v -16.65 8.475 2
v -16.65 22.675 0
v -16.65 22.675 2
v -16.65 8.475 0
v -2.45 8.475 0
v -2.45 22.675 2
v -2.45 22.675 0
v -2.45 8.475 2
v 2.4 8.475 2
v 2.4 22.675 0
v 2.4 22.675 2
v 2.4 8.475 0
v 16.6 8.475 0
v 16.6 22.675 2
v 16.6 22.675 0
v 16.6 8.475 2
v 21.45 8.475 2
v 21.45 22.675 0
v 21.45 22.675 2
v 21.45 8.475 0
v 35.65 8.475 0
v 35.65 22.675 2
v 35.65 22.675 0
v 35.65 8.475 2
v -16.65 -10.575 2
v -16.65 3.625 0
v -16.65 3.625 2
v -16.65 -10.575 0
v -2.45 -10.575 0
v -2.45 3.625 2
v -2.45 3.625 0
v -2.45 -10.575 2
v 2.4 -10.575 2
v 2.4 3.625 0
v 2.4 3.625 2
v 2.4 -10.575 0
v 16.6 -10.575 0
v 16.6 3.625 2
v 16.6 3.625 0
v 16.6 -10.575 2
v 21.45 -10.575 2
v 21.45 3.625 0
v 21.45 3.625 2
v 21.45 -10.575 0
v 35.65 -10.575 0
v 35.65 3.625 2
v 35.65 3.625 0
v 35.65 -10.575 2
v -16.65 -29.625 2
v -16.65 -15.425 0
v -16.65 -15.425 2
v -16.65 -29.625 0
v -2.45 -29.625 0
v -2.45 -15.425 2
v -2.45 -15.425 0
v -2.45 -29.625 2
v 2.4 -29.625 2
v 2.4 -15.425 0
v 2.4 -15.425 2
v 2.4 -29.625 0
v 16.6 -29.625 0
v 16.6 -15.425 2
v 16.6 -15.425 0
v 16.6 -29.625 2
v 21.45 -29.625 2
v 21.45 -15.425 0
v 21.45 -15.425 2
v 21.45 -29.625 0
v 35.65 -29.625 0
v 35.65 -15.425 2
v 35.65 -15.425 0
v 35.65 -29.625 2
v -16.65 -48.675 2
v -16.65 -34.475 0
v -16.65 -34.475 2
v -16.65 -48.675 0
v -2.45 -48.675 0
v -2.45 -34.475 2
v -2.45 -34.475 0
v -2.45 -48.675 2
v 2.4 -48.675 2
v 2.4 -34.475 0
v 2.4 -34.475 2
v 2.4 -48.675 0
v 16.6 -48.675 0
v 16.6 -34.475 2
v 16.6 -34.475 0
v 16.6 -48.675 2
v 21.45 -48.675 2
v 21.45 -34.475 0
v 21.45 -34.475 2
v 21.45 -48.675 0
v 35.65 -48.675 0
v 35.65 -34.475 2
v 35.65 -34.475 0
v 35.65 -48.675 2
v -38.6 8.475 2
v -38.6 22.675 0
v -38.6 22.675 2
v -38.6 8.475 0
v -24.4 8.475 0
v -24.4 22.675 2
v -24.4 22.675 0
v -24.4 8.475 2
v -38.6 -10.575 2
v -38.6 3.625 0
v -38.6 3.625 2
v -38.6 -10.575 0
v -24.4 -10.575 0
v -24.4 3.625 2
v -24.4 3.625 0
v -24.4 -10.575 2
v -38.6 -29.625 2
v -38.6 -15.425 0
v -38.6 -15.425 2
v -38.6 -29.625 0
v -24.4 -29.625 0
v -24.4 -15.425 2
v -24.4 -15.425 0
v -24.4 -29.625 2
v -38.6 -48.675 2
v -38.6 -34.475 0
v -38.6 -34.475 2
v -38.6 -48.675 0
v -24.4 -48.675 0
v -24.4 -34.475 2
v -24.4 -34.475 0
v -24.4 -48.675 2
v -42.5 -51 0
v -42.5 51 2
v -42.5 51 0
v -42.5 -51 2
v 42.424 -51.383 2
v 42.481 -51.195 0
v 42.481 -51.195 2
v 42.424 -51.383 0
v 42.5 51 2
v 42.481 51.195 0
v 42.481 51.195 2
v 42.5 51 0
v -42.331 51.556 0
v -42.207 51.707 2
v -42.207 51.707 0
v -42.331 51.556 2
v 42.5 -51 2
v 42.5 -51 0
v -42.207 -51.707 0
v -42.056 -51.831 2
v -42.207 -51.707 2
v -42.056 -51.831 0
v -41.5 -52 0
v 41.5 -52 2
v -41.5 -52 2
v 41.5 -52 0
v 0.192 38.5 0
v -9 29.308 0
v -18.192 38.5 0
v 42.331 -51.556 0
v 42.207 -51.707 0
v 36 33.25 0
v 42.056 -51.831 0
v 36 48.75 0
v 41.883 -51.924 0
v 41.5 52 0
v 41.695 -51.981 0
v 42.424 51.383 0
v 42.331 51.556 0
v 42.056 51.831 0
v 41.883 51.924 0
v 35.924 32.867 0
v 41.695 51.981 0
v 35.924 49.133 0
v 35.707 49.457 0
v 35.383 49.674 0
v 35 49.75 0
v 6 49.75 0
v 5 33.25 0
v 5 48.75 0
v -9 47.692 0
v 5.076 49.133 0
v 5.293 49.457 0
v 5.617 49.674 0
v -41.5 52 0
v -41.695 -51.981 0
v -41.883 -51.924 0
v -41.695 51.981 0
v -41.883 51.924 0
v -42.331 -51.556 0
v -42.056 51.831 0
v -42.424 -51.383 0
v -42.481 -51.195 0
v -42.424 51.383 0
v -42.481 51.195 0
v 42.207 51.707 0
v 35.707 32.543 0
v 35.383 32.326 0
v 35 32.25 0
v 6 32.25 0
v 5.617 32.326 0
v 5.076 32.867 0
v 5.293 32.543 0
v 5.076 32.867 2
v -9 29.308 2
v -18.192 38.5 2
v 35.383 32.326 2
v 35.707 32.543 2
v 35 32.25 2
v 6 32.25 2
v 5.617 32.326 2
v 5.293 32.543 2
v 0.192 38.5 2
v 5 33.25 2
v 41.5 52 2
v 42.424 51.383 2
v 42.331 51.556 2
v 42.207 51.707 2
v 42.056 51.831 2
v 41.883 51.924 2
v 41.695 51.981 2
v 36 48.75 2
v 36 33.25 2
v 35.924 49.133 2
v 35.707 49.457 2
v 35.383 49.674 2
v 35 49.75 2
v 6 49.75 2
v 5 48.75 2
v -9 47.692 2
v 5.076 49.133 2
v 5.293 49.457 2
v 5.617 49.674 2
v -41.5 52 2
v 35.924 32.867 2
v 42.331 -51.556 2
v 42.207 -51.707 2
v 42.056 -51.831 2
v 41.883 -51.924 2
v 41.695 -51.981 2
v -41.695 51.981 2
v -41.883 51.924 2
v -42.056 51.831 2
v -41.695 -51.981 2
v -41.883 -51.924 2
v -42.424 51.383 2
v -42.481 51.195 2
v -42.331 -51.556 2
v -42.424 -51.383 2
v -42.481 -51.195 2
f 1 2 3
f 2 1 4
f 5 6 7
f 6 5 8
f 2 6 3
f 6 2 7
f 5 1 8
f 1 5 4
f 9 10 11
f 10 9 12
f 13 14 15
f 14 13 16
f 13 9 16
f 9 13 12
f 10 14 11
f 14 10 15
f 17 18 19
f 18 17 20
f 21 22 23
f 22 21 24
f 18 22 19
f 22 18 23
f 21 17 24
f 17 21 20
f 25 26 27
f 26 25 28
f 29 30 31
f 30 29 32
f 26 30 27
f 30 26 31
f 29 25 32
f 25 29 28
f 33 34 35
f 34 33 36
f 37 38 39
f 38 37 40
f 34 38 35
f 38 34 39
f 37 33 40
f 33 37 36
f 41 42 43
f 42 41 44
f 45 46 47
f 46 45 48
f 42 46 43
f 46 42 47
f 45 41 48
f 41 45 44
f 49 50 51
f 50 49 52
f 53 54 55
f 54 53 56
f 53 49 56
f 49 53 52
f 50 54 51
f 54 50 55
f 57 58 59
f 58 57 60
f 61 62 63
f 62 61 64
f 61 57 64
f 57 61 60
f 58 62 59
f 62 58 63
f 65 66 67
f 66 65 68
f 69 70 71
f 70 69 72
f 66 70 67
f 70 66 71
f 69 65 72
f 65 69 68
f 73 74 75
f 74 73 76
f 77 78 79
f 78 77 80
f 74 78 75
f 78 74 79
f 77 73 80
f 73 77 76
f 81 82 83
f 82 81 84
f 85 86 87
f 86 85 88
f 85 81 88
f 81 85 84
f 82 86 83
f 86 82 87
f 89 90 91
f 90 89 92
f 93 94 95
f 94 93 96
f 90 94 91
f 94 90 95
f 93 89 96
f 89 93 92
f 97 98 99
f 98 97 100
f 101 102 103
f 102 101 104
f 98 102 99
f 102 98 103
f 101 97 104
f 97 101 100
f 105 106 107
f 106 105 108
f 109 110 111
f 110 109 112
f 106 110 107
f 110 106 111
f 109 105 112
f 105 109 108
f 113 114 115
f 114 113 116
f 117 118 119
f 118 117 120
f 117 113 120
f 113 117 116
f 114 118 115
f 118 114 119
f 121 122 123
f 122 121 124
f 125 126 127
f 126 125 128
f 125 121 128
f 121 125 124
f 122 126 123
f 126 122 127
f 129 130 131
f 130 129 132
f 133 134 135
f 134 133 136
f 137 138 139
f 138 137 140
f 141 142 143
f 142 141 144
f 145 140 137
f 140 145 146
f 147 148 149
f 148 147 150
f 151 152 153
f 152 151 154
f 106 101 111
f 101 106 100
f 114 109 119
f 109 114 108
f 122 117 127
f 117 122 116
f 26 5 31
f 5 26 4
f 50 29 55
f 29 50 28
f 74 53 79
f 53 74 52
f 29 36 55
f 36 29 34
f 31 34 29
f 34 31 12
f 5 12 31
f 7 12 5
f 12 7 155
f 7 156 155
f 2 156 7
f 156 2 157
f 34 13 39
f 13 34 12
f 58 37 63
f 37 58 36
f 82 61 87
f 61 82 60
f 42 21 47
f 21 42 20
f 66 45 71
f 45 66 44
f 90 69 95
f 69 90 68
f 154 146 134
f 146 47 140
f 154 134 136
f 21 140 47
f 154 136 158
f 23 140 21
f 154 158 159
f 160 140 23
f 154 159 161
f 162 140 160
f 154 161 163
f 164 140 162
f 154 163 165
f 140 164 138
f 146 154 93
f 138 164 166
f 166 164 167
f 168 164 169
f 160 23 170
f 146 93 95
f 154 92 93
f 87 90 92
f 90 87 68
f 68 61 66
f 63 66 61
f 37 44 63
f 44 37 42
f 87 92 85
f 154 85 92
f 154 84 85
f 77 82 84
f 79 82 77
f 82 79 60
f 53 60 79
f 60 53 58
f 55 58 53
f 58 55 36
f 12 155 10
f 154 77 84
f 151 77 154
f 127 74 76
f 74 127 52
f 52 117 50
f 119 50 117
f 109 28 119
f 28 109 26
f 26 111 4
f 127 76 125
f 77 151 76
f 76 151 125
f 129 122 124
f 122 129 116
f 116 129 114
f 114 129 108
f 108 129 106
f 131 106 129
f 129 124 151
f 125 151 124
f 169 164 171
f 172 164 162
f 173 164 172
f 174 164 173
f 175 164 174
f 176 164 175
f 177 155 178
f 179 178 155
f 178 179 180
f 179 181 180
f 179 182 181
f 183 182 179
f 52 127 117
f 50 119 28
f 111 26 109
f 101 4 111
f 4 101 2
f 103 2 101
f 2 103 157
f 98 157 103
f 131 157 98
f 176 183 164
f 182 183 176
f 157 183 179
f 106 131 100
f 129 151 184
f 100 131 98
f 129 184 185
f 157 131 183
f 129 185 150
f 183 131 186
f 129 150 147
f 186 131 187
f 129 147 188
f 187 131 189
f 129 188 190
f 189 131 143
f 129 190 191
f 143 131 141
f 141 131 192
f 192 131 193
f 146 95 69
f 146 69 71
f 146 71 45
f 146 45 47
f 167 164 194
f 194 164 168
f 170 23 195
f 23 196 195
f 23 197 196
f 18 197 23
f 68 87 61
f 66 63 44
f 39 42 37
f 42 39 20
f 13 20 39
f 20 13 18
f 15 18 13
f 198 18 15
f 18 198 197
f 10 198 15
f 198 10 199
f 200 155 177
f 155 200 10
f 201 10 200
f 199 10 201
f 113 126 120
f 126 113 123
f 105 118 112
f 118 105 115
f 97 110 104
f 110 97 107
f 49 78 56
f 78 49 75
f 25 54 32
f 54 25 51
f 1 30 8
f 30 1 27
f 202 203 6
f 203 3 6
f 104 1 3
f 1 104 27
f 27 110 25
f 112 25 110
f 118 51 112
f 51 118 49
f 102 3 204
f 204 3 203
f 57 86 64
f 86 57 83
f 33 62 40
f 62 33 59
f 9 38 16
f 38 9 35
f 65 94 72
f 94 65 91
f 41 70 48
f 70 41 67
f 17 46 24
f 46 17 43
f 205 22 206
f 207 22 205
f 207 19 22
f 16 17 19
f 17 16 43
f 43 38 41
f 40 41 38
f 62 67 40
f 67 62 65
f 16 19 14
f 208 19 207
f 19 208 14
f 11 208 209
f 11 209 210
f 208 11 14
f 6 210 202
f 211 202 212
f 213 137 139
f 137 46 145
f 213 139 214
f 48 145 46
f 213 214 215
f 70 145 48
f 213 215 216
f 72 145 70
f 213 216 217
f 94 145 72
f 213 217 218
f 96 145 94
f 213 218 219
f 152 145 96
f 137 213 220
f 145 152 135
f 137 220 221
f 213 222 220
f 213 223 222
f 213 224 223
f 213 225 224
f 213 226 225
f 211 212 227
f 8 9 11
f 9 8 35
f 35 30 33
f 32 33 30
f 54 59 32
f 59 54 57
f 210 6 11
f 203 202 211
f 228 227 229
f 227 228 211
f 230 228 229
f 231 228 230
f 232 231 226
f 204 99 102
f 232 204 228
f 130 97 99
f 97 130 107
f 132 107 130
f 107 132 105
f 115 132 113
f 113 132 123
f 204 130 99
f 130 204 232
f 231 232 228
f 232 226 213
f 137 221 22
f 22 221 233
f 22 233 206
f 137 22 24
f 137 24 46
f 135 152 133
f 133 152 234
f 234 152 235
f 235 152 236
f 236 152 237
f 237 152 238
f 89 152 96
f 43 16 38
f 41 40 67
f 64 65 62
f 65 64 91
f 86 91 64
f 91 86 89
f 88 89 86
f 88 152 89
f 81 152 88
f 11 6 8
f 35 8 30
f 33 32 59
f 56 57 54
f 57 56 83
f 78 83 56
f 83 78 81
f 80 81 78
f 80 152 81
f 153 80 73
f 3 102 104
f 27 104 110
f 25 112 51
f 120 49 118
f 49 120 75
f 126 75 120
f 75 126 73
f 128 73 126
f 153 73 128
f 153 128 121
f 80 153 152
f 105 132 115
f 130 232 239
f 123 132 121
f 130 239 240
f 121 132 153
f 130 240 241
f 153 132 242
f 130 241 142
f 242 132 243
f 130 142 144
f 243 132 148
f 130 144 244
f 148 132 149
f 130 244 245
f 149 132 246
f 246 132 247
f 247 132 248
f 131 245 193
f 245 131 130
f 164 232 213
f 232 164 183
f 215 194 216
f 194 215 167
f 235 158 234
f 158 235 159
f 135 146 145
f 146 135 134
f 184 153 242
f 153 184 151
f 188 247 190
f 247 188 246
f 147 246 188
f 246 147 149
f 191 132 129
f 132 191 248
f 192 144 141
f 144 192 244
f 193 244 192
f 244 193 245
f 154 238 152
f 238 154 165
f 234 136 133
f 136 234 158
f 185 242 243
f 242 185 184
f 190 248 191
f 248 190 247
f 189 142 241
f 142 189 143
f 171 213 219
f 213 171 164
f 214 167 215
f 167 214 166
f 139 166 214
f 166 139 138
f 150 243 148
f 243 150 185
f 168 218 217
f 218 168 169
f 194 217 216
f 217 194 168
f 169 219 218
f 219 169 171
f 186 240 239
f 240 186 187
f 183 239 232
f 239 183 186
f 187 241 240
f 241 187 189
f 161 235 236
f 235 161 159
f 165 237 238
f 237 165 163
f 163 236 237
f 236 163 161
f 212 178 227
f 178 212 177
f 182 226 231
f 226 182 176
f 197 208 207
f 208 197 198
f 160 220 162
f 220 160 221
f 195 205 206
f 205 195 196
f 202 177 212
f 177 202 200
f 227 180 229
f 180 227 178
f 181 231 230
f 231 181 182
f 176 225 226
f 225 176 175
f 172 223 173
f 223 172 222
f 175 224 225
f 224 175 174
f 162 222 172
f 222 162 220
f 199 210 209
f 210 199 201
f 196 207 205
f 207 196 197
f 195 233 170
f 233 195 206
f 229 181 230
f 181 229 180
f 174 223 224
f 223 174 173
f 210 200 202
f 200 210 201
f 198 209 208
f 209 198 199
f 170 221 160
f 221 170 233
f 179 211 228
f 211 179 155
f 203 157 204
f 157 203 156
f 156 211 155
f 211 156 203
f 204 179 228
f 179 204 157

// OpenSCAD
// MacroPad RP2040 Top Cover
// Parametric design for Adafruit MacroPad RP2040 keyboard controller
// Author: Generated for CircuitPython EVM Controller project
// License: MIT

// Cheatsheet: https://openscad.org/cheatsheet/index.html?version=2021.01

// This file is the design for the top cover of a case designed to enclose the 
// Adafruit MacroPad RP2040 hardware module. Tve cover comtains 12 holes for the 
// key switches. The holes are sized to enssure a tight fit for the keys switches
// Key swiicthes are carefully inserted through the top cover holes, the looser
// fitting filler layer in to the keys switches sockes that Adafruit has soldered
// into the board. The cover also completely encloses the Encoder on the PCB.
// The encoder nut and washer is to be removed during assembly and added back
// on top of the shaft cover and used to secure the top cover to the PCB board. 

// =============================================================================
// PARAMETERS
// =============================================================================

// RP2040 PCB parameters
pcb_length = 105;          // RP2040 PCB length (mm)
pcb_width = 60;            // RP2040 PCB width (mm)
pcb_thickness = 1.6;       // Standard PCB thickness (mm)
pcb_clearance = 1;         // Space around PCB (mm)
pcb_height_clearance = 8;  // Space above PCB for components (mm)

// Overall cover dimensions addinh Quad Encoder
qencoder_width = 25;      // Width of Quad Encoder (mm)
cover_length = 105 - 1;   // Total length of cover (mm)  
cover_width = 60 + qencoder_width;         // Total width of cover (mm)
cover_thickness = 2;       // Thickness of top plate (mm)
corner_radius = 1;         // Rounded corner radius (mm)

// Key switch parameters (Cherry MX compatible)
key_switch_size = 14;      // Square hole size for key switches (mm)
key_switch_spacing = 19.05; // Center-to-center spacing (0.75" standard)
key_rows = 4;              // Number of rows
key_cols = 3;              // Number of columns

// Key switch grid positioning (relative to cover center)
keys_offset_x = 0;         // X offset of key grid center
keys_offset_y = -13;     // Y offset of key grid center (negative = toward bottom)

// LCD/OLED display parameters
lcd_width = 31;            // Width of LCD cutout (mm)
lcd_height = 17.5;           // Height of LCD cutout (mm)
lcd_corner_radius = 1;     // Corner radius for LCD hole
//lcd_offset_x = -11;        // X position relative to center
lcd_offset_x = 11;        // X position relative to center
lcd_offset_y = 41;         // Y position relative to center (positive = toward top)

// Cover base Encoder hole
encoder_hole_size = 13;         // Square hole size for encoder + 1 mm space(mm)
encoder_hole_offset_x = -18.5;   // Hole X position relative to center
encoder_hole_offset_y = 38.5;   // Hole Y position relative to center
encoder_hole_z = 5;             // Hole encoder shaft height

// Rotary encoder parameters and relative to shaft center
encoder_shaft_diameter = 6;
encoder_size = 13;         // Square hole size for encoder + 1 mm space(mm)
//encoder_offset_x = 18.5 ;   // X position relative to center
encoder_offset_x = -48.5 - qencoder_width / 2;   // X position relative to center
encoder_offset_y = 38.5;   // Y position relative to center
encoder_shaft_z = 7;      // Encoder shaft height
encoder_shaft_clearance = 2; // General clearance for 3D printing (mm)

shaft_wall_width= 2;       // 
shaft_corner_radius = 1;   // Corner radius for encoder hole

// Mounting and clearance
wall_thickness = 2;        // Wall thickness for sides (if adding later)
clearance = 0.2;           // General clearance for 3D printing (mm)

// =============================================================================
// MAIN OBJECT
// =============================================================================

difference() {
        
    // Base cover plate
    base_cover();
    
    // Cut out holes for key switches
    key_switch_holes();
    
    // Cut out holes for quad encoders
    quad_encoder_holes();
    
    // Cut out hole for LCD/OLED
    lcd_hole();
    
    base_encoder_hole();

    // Cut out hole for rotary encoder
    encoder_shaft_hole();                        

    // Cut out encoder shaft hole
    encoder_round_hole();
        
}

// Optional: Show key switch positions for reference (comment out for final print)
// %key_switch_positions(); // The % makes it transparent/reference only

// =============================================================================
// MODULES (Functions)
// =============================================================================

// Create the base cover plate with rounded corners
module base_cover() {
    
    union() {
        // Using hull() with corner cylinders to create rounded rectangle
        hull() {
            // Four corner cylinders to create rounded rectangle
            translate([-(cover_width/2 - corner_radius), -(cover_length/2 - corner_radius), 0])
                cylinder(h = cover_thickness, r = corner_radius, $fn = 32);
            
            translate([+(cover_width/2 - corner_radius), -(cover_length/2 - corner_radius), 0])
                cylinder(h = cover_thickness, r = corner_radius, $fn = 32);
            
            translate([+(cover_width/2 - corner_radius), +(cover_length/2 - corner_radius), 0])
                cylinder(h = cover_thickness, r = corner_radius, $fn = 32);
            
            translate([-(cover_width/2 - corner_radius), +(cover_length/2 - corner_radius), 0])
                cylinder(h = cover_thickness, r = corner_radius, $fn = 32);
        }
        
        // Wrap the open encoder shaft
        //encoder_shaft_wrap();                        
    }
}

// Create all key switch holes in a 3x4 matrix
module key_switch_holes() {
    // Calculate starting position for grid (top-left key)
    start_x = keys_offset_x - (key_switch_spacing * (key_cols - 1) / 2) + qencoder_width/2 - 3;
    start_y = keys_offset_y + (key_switch_spacing * (key_rows - 1) / 2);
    
    // Create grid of holes
    for (row = [0 : key_rows - 1]) {
        for (col = [0 : key_cols - 1]) {
            translate([
                start_x + (col * key_switch_spacing),
                start_y - (row * key_switch_spacing),
                -0.5  // Extend slightly below surface for clean cut
            ]) {
                // Square hole for key switch
                cube([
                    key_switch_size + clearance,
                    key_switch_size + clearance,
                    cover_thickness + 5
                ], center = true);
            }
        }
    }
}

// Create all quad encoder holes in a 1x4 matrix
module quad_encoder_holes() {
    // Calculate starting position for grid (top-left key)
    key_rows = 4;
    key_cols = 1;

    start_x = keys_offset_x - (key_switch_spacing * (key_cols - 1) / 2) + qencoder_width/2 - 40 - 4;
    start_y = keys_offset_y + (key_switch_spacing * (key_rows - 1) / 2);
    
    // Create grid of holes
    for (row = [0 : key_rows - 1]) {
        for (col = [0 : key_cols - 1]) {
            translate([
                start_x + (col * key_switch_spacing),
                start_y - (row * key_switch_spacing),
                -0.5  // Extend slightly below surface for clean cut
            ]) {
                // Square hole for key switch
                cube([
                    key_switch_size + clearance,
                    key_switch_size + clearance,
                    cover_thickness + 5
                ], center = true);
            }
        }
    }
}


// Create LCD/OLED display hole
module lcd_hole() {
    translate([lcd_offset_x + qencoder_width/2 - 3, lcd_offset_y, -0.5]) {
        // Rounded rectangle hole for LCD
        hull() {
            // Four corner cylinders for rounded rectangle
            translate([-(lcd_width/2 - lcd_corner_radius), -(lcd_height/2 - lcd_corner_radius), 0])
                cylinder(h = cover_thickness + 1, r = lcd_corner_radius, $fn = 16);
            
            translate([+(lcd_width/2 - lcd_corner_radius), -(lcd_height/2 - lcd_corner_radius), 0])
                cylinder(h = cover_thickness + 1, r = lcd_corner_radius, $fn = 16);
            
            translate([+(lcd_width/2 - lcd_corner_radius), +(lcd_height/2 - lcd_corner_radius), 0])
                cylinder(h = cover_thickness + 1, r = lcd_corner_radius, $fn = 16);
            
            translate([-(lcd_width/2 - lcd_corner_radius), +(lcd_height/2 - lcd_corner_radius), 0])
                cylinder(h = cover_thickness + 1, r = lcd_corner_radius, $fn = 16);
        }
    }
}


// Reference module to show key switch positions (for design verification)
module key_switch_positions() {
    // Calculate starting position for grid
    start_x = keys_offset_x - (key_switch_spacing * (key_cols - 1) / 2);
    start_y = keys_offset_y + (key_switch_spacing * (key_rows - 1) / 2);
    
    // Show key positions with small cylinders
    for (row = [0 : key_rows - 1]) {
        for (col = [0 : key_cols - 1]) {
            translate([
                start_x + (col * key_switch_spacing),
                start_y - (row * key_switch_spacing),
                cover_thickness
            ]) {
                cylinder(h = 2, r = 1, $fn = 8);
                
                // Optional: Add text labels for key numbers
                translate([0, 0, 2]) {
                    linear_extrude(height = 0.5) {
                        text(
                            str(row * key_cols + col), 
                            size = 3, 
                            halign = "center", 
                            valign = "center"
                        );
                    }
                }
            }
        }
    }
}


// Reference module to show key switch positions (for design verification)
module qencoder_positions() {
    key_rows = 4;
    key_cols = 1;
    
    // Calculate starting position for grid
    start_x = keys_offset_x - (key_switch_spacing * (key_cols - 1) / 2) - 30;
    start_y = keys_offset_y + (key_switch_spacing * (key_rows - 1) / 2);
    
    // Show key positions with small cylinders
    for (row = [0 : key_rows - 1]) {
        for (col = [0 : key_cols - 1]) {
            translate([
                start_x + (col * key_switch_spacing),
                start_y - (row * key_switch_spacing),
                cover_thickness
            ]) {
                cylinder(h = 2, r = 1, $fn = 8);
                
                // Optional: Add text labels for key numbers
                translate([0, 0, 2]) {
                    linear_extrude(height = 0.5) {
                        text(
                            str(row * key_cols + col), 
                            size = 3, 
                            halign = "center", 
                            valign = "center"
                        );
                    }
                }
            }
        }
    }
}


// Encoder hole in cover base
module base_encoder_hole() {
    
    color("blue") translate([encoder_hole_offset_x + qencoder_width/2 - 3, encoder_hole_offset_y, -0.5]) {
        // Square hole with slightly rounded corners for encoder
        rotate(45) 
        cube([encoder_hole_size,encoder_hole_size, 10],center = true);
    }    
}



// Seperated: Create rotary encoder hole through cover base and shaft cibe
module encoder_shaft_wrap() {
    
    encoder_z = encoder_shaft_z - shaft_wall_width;  // 2mm Shaft top cover
    
    translate([encoder_offset_x, encoder_offset_y, 0]) {
        // Square hole with slightly rounded corners for encoder
        hull() {
            // Four corner cylinders for rounded square
            translate([+(encoder_size/2 + shaft_wall_width - shaft_corner_radius), -(encoder_size/2 + shaft_wall_width - shaft_corner_radius), 0])
                cylinder(h = cover_thickness + encoder_z, r = shaft_corner_radius, $fn = 32);
            
            translate([-(encoder_size/2 + shaft_wall_width - shaft_corner_radius), -(encoder_size/2 + shaft_wall_width - shaft_corner_radius), 0])
                cylinder(h = cover_thickness + encoder_z, r = shaft_corner_radius, $fn = 32);
            
            translate([+(encoder_size/2 + shaft_wall_width - shaft_corner_radius), (encoder_size/2 + shaft_wall_width - shaft_corner_radius), 0])
                cylinder(h = cover_thickness + encoder_z, r = shaft_corner_radius, $fn = 32);
            
            translate([-(encoder_size/2 + shaft_wall_width - shaft_corner_radius), (encoder_size/2 + shaft_wall_width - shaft_corner_radius), 0])
                cylinder(h = cover_thickness + encoder_z, r = shaft_corner_radius, $fn = 32);
        }
    }
}


// Seperated: Create a wrapper around encoder sides starting at cover height
module encoder_shaft_hole() {
    encoder_z = encoder_shaft_z + shaft_wall_width;  // 2mm Shaft top cover
    
    color("red") translate([encoder_offset_x, encoder_offset_y, encoder_z / 2 + 2]) {
        // Square hole with slightly rounded corners for encoder 
        cube([encoder_size,encoder_size, encoder_z],center = true);
    }    
}

// Seperated: Create Encoder 6mm Shaft through hole
module encoder_round_hole() {
    color("blue") translate([encoder_offset_x, encoder_offset_y, -0.5]) {
        // Through hole for encoder shaft
        cylinder(
            h = encoder_shaft_z + 2, 
            d = encoder_shaft_diameter + encoder_shaft_clearance, 
            $fn = 16
        );        
    }
}
